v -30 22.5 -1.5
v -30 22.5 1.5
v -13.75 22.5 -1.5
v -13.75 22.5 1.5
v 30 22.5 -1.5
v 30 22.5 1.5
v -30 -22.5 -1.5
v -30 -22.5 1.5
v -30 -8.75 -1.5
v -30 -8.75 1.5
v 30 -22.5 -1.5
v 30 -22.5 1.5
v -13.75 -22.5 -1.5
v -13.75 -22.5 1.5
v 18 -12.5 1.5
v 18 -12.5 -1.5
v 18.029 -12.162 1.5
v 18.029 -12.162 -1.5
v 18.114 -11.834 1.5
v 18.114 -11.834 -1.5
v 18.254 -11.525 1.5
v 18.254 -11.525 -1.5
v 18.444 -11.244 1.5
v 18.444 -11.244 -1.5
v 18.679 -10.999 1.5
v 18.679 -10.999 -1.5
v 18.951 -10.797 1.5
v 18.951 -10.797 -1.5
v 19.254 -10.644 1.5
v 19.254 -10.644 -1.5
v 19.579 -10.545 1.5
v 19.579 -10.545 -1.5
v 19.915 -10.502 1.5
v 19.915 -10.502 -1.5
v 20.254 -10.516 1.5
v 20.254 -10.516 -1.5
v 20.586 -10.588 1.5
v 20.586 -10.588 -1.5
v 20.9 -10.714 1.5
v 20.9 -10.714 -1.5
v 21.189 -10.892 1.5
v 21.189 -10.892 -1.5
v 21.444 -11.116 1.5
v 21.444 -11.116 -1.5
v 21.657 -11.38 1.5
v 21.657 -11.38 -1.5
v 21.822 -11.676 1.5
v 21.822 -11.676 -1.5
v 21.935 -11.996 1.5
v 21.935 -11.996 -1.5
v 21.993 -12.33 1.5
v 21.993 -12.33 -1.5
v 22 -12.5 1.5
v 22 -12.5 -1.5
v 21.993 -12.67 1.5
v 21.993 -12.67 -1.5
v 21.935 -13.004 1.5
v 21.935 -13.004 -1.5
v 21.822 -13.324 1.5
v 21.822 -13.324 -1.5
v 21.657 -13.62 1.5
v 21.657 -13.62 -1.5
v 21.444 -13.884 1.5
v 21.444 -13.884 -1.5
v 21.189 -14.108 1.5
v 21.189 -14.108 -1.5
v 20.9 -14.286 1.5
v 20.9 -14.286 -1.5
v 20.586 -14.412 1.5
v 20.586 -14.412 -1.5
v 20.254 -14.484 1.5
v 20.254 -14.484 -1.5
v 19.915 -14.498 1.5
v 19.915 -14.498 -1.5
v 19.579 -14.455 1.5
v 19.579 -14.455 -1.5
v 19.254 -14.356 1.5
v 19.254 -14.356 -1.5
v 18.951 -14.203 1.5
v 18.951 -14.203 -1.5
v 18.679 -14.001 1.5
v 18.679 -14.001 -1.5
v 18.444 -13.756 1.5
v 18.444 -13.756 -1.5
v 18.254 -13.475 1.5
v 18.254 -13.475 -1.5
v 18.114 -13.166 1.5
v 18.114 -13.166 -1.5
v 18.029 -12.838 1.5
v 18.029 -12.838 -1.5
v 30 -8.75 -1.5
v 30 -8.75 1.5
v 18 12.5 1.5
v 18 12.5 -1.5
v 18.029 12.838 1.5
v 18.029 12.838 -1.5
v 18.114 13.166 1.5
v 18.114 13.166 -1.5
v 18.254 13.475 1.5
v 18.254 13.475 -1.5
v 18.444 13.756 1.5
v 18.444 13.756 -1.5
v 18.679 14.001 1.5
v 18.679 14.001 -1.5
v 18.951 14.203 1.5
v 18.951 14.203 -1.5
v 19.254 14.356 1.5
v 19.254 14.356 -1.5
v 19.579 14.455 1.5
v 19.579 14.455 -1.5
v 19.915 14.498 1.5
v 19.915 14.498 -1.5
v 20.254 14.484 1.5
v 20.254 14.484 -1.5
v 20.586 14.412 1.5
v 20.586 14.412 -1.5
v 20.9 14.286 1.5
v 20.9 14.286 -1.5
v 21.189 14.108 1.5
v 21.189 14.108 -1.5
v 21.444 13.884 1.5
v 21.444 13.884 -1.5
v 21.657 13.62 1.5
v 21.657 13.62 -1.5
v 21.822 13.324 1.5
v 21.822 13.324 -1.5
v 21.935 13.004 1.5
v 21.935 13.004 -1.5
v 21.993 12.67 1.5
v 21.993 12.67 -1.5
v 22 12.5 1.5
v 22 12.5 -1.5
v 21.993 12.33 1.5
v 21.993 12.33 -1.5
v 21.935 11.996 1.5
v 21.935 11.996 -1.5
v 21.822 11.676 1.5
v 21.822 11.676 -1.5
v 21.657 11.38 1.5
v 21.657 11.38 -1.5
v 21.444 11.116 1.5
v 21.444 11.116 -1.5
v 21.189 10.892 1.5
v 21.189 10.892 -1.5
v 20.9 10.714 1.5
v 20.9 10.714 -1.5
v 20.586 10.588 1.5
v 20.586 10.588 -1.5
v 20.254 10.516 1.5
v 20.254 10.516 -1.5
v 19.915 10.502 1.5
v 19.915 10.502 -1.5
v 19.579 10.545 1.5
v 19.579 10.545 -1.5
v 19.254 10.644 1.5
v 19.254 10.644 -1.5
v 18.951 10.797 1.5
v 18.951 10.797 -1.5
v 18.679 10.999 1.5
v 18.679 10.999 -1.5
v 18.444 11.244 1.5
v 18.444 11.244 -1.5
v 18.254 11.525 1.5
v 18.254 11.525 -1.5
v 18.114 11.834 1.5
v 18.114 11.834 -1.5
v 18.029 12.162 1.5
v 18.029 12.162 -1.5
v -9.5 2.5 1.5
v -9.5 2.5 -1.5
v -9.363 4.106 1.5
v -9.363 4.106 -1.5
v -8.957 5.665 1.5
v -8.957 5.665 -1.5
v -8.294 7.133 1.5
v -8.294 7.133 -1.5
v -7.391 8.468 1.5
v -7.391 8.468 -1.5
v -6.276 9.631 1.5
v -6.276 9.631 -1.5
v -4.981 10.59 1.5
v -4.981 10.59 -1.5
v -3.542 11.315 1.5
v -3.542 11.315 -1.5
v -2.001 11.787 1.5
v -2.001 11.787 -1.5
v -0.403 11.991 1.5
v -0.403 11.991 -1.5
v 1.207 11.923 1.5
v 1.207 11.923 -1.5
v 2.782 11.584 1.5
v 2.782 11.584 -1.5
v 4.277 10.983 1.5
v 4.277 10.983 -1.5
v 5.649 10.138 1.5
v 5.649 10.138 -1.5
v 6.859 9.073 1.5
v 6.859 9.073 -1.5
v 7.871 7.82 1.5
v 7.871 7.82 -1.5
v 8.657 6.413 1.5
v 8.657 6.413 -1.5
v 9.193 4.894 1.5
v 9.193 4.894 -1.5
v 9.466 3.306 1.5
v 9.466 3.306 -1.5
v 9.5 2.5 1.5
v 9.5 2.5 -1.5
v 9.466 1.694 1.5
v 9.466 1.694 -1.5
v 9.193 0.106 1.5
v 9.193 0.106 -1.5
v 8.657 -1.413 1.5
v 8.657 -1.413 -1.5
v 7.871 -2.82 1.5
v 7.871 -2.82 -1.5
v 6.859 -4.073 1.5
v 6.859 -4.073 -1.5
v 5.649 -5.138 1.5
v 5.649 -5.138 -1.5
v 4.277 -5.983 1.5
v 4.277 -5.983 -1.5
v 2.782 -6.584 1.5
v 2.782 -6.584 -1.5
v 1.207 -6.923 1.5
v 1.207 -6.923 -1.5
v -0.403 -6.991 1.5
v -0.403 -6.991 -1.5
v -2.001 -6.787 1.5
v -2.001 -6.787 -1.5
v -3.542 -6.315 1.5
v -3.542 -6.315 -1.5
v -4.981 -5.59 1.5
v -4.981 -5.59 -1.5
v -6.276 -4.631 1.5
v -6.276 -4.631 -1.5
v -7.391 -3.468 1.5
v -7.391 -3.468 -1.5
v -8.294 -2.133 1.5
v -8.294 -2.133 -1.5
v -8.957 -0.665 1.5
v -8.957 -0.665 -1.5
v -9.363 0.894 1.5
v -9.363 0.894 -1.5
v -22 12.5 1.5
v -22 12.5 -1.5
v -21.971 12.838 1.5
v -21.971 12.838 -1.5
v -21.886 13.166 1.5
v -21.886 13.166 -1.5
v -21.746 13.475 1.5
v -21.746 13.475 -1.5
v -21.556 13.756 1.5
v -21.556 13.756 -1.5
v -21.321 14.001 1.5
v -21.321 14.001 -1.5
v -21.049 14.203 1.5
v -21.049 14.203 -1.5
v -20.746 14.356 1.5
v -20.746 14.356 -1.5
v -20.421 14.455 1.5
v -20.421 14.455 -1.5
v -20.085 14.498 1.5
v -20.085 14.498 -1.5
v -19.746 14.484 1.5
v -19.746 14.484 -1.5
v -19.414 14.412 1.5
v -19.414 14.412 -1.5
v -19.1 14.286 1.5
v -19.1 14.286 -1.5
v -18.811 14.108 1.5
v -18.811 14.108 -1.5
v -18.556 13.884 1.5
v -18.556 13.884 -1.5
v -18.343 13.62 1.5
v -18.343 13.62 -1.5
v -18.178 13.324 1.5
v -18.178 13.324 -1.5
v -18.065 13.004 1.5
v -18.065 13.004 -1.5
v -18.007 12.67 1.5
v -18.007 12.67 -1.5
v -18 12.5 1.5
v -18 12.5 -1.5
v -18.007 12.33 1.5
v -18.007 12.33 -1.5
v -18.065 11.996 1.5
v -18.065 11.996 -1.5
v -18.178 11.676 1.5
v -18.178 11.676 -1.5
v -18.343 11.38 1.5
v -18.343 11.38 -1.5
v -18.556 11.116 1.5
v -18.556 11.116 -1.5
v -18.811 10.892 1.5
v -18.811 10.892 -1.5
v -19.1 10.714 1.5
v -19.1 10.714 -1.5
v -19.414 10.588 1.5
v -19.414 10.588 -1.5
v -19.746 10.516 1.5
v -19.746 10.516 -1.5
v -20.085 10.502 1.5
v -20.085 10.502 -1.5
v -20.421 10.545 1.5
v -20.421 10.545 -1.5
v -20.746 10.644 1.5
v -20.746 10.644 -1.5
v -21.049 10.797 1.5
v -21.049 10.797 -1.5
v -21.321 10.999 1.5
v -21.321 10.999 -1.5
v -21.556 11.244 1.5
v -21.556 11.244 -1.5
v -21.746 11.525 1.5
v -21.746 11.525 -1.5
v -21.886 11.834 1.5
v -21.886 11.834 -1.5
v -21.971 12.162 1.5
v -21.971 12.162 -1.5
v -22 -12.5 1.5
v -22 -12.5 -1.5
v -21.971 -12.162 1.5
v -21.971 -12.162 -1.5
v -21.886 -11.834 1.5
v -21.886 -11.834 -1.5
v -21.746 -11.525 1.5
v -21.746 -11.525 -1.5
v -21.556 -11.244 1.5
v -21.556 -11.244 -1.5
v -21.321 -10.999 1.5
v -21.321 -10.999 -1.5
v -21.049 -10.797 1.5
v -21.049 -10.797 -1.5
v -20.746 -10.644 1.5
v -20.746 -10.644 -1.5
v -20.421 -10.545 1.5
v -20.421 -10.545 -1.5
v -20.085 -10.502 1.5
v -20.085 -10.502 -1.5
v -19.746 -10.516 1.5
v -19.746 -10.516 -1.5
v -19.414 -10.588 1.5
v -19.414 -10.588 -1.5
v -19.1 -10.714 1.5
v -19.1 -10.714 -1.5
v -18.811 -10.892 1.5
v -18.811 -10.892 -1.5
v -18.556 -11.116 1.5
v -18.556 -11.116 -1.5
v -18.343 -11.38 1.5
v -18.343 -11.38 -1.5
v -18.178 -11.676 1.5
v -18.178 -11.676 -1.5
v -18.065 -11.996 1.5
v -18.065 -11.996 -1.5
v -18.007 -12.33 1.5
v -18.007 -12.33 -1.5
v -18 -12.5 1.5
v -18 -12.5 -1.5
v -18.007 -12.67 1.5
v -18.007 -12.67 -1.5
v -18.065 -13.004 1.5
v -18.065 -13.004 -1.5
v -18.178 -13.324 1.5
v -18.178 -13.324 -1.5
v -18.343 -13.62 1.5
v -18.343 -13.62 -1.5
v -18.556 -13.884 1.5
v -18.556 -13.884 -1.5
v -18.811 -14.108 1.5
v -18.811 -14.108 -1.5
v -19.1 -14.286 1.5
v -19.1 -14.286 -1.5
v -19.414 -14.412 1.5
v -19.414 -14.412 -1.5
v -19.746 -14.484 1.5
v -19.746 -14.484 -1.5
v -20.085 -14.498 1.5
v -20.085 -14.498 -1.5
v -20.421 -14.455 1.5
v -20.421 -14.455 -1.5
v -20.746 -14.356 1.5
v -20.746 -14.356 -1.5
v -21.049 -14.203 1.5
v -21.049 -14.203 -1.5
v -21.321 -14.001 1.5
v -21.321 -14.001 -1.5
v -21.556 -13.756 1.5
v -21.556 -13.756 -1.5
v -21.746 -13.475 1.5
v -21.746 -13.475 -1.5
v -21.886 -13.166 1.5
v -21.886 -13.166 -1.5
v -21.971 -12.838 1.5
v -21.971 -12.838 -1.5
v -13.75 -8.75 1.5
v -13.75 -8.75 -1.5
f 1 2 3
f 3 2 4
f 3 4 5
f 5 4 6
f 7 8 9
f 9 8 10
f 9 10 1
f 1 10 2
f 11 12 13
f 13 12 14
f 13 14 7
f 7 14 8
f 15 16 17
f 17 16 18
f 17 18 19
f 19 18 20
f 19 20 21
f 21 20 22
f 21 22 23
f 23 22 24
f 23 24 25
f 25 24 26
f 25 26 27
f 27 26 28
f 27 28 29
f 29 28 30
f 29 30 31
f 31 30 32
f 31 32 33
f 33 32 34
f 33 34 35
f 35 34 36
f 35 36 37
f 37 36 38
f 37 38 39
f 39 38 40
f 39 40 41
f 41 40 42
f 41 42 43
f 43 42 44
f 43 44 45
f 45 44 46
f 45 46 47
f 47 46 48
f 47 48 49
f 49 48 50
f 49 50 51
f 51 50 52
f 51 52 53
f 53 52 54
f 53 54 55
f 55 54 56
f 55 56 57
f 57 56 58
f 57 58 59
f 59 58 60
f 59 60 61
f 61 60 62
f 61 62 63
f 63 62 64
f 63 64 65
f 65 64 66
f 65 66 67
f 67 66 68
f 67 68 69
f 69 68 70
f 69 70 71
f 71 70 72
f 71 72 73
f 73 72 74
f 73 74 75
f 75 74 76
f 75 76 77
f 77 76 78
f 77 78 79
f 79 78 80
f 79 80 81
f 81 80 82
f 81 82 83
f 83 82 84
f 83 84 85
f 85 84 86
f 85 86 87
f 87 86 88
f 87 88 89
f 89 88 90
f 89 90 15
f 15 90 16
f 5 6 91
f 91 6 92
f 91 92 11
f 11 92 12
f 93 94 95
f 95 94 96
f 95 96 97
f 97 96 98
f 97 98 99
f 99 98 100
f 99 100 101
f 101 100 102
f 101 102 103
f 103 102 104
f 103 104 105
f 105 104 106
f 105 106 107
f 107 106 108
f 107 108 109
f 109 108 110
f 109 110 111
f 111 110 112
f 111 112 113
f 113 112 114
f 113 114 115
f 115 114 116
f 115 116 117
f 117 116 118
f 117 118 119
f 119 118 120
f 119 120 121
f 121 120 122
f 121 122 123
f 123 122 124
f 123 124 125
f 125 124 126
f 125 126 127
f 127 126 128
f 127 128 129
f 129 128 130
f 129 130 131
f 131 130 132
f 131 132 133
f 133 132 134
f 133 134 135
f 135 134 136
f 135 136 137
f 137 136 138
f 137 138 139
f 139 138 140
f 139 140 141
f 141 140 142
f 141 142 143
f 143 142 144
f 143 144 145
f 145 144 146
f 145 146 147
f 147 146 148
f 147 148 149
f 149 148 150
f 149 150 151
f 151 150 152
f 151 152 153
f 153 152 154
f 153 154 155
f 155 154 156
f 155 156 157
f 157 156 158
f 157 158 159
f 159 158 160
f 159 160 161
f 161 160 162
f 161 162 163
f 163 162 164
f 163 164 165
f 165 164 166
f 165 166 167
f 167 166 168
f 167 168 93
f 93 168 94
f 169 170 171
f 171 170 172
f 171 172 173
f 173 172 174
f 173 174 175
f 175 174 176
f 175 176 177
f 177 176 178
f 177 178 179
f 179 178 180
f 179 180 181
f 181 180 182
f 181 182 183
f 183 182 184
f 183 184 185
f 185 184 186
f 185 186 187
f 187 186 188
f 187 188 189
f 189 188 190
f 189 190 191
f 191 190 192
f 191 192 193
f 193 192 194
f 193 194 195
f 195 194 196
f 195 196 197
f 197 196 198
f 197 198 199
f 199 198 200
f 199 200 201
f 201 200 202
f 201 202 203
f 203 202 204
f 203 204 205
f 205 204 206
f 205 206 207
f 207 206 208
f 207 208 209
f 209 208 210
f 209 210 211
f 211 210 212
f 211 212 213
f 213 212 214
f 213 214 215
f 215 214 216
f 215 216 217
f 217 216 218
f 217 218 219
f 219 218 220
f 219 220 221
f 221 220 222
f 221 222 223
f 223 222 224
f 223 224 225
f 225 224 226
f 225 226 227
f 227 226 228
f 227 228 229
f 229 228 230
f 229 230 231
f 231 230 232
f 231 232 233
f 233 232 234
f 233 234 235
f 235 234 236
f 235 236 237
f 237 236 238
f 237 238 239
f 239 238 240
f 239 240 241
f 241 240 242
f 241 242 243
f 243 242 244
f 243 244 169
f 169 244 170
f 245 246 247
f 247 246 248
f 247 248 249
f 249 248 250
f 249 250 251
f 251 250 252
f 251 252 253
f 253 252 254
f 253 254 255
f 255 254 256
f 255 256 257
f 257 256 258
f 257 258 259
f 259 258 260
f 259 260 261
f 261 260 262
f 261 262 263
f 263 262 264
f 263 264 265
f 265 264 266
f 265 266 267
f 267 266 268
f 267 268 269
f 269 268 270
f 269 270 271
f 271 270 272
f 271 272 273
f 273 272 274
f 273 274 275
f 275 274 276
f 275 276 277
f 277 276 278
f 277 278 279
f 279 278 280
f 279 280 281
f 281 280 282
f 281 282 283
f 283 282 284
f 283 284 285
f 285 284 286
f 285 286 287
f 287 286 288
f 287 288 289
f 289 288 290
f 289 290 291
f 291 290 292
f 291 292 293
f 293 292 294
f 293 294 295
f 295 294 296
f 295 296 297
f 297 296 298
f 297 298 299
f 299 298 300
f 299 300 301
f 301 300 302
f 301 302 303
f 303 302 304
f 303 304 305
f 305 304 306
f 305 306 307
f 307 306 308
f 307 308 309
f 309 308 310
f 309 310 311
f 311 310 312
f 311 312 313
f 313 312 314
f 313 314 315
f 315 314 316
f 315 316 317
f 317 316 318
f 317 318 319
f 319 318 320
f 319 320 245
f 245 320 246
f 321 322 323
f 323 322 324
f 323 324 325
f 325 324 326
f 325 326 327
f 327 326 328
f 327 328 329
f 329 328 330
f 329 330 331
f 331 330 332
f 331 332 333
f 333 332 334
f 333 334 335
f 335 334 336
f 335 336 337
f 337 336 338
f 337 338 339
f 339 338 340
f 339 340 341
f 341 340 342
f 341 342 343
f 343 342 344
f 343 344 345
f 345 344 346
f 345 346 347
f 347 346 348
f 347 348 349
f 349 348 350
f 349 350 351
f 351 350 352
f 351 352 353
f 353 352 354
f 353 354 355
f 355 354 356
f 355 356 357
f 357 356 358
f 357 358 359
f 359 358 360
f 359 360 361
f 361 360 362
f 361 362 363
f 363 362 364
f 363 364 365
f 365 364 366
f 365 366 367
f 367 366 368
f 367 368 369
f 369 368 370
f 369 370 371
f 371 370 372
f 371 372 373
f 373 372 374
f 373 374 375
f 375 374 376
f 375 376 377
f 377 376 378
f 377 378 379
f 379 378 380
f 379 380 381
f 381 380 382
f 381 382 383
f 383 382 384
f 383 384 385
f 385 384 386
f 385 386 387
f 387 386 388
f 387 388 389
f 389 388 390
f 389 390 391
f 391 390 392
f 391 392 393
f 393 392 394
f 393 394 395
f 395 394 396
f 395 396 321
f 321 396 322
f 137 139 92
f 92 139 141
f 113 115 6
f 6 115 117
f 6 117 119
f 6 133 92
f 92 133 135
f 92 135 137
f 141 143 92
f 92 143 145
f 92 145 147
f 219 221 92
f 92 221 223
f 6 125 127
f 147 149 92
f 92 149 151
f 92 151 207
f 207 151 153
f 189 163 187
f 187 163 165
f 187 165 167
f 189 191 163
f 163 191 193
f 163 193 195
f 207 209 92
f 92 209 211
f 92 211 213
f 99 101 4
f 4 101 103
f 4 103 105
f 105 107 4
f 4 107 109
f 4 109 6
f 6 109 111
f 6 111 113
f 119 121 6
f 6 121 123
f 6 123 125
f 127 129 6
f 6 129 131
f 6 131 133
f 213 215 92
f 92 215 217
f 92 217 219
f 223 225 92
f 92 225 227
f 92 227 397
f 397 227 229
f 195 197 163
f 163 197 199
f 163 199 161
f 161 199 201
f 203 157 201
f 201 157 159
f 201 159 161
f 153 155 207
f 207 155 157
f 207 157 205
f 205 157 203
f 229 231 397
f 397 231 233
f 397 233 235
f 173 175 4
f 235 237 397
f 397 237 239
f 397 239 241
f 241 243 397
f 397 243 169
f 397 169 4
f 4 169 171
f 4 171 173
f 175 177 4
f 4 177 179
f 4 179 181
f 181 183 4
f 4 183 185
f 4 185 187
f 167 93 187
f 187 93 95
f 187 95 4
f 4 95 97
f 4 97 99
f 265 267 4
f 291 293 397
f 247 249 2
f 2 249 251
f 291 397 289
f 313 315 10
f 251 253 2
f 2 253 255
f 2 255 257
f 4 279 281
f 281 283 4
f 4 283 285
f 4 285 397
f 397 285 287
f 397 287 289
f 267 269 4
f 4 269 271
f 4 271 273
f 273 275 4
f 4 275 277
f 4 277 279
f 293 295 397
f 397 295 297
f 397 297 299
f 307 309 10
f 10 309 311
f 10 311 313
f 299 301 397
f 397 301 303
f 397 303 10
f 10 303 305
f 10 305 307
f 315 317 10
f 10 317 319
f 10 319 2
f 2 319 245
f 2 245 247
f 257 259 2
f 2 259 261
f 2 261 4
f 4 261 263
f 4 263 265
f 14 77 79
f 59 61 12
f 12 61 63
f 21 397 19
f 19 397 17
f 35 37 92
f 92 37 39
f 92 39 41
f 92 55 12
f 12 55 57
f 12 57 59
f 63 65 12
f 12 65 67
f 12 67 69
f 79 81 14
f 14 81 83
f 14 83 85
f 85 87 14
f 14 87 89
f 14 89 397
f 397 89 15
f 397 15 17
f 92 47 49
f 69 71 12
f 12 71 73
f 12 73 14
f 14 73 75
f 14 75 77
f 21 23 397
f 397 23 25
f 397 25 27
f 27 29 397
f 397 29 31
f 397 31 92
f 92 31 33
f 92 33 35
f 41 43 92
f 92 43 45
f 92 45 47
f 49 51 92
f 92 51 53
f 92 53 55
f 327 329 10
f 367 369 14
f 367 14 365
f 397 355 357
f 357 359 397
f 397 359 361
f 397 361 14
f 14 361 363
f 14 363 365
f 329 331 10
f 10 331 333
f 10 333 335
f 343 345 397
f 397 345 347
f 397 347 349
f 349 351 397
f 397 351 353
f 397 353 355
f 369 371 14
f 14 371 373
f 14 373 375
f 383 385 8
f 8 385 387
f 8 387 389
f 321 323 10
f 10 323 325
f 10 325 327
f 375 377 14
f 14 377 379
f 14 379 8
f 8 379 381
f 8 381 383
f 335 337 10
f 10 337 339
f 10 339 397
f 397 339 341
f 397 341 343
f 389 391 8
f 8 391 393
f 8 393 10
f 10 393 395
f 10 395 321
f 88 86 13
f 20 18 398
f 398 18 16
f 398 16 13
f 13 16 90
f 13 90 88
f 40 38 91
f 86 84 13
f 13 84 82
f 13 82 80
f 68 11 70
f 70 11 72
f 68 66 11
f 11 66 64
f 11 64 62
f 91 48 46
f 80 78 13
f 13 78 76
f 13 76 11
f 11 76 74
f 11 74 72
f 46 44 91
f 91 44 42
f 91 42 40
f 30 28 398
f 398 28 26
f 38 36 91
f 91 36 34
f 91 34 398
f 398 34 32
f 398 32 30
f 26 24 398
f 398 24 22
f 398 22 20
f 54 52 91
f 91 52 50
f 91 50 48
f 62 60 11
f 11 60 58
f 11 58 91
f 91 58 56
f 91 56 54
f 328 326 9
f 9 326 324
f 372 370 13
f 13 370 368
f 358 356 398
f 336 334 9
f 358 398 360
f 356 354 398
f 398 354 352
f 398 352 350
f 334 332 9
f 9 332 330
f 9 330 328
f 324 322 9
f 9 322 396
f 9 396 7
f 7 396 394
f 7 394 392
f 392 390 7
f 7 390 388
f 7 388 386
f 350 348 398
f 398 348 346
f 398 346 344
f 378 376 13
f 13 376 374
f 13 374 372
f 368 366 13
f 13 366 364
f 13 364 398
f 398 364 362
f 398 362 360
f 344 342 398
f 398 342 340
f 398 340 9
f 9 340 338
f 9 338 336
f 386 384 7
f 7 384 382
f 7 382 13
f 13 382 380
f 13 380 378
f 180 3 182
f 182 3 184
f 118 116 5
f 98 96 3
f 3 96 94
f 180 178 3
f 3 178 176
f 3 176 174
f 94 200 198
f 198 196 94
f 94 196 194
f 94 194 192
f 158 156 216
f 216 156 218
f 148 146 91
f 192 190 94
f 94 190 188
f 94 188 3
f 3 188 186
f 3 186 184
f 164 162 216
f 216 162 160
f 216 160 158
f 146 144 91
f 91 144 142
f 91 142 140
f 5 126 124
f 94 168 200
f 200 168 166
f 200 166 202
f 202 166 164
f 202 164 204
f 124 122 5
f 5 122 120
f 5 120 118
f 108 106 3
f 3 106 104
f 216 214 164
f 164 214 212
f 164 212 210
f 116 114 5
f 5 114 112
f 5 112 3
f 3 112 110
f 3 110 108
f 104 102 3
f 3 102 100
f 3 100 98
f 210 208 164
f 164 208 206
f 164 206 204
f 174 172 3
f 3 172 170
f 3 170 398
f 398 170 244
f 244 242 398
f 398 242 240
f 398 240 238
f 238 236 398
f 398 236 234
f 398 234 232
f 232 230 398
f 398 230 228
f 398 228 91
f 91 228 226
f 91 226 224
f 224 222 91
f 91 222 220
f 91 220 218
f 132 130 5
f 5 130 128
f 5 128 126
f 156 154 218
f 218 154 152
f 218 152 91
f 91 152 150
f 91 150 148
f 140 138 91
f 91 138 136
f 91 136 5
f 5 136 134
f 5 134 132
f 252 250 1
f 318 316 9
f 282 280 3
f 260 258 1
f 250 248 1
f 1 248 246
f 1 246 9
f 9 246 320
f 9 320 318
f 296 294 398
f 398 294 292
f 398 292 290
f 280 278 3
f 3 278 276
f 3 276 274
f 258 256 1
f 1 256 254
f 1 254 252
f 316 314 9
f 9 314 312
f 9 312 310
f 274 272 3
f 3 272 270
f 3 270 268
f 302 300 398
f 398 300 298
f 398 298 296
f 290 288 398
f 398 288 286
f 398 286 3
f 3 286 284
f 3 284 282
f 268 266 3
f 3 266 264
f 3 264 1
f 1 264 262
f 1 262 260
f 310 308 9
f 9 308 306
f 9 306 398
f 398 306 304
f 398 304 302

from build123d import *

# Parameters (mm, degrees)
SKETCH_1_R      = 2
SKETCH_1_R_2    = 9.5
EXTRUDE_2_DEPTH = 1.5


with BuildPart() as part:
    # 草图1 → 凸台-拉伸2 (new, symmetric)
    # profile 1 of 2: a face of its own
    with BuildSketch(Plane.XY):
        with BuildLine():
            Line((-30, 12.5), (-30, -22.5))
            Line((-30, -22.5), (30, -22.5))
            Line((30, -22.5), (30, 22.5))
            Line((30, 22.5), (-20, 22.5))
            Line((-20, 22.5), (-20, 14.5))
            ThreePointArc((-20, 14.5), (-18.585786438, 13.914213562), (-18, 12.5))
            ThreePointArc((-18, 12.5), (-20, 10.5), (-22, 12.5))
            Line((-22, 12.5), (-30, 12.5))
        make_face()
        with Locations((-20, -12.5)):
            Circle(SKETCH_1_R, mode=Mode.SUBTRACT)
        with Locations((20, -12.5)):
            Circle(SKETCH_1_R, mode=Mode.SUBTRACT)
        with Locations((0, 2.5)):
            Circle(SKETCH_1_R_2, mode=Mode.SUBTRACT)
        with Locations((20, 12.5)):
            Circle(SKETCH_1_R, mode=Mode.SUBTRACT)
    # profile 2 of 2: a face of its own
    with BuildSketch(Plane.XY):
        with BuildLine():
            Line((-30, 22.5), (-30, 12.5))
            Line((-30, 12.5), (-22, 12.5))
            ThreePointArc((-22, 12.5), (-21.414213562, 13.914213562), (-20, 14.5))
            Line((-20, 14.5), (-20, 22.5))
            Line((-20, 22.5), (-30, 22.5))
        make_face()
    extrude(amount=EXTRUDE_2_DEPTH, both=True)


solid = part.part
